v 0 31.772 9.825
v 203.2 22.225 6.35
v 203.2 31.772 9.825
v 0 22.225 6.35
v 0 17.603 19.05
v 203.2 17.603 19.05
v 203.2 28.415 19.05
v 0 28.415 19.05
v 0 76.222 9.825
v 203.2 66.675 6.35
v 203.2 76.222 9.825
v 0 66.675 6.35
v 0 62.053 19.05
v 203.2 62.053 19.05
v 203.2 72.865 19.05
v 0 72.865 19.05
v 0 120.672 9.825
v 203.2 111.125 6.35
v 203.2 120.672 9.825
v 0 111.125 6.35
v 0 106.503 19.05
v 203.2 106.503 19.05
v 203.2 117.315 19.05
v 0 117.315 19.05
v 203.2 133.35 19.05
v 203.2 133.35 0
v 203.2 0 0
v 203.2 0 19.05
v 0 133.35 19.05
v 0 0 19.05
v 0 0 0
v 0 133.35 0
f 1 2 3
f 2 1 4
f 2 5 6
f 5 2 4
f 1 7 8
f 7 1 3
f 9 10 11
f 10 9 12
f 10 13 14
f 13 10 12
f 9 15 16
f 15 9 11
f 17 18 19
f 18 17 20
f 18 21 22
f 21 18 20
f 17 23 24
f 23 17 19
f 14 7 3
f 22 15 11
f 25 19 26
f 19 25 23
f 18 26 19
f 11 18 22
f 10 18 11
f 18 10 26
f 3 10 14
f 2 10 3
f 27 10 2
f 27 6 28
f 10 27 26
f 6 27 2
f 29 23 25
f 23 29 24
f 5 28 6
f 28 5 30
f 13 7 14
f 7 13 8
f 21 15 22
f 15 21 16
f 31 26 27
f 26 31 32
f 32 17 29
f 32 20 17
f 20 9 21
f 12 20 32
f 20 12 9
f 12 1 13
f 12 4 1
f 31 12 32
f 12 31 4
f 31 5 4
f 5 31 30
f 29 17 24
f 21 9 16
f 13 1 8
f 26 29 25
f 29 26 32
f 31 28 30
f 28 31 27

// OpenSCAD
mm = 25.4;
$fn = 32;
e = 0.1;

slot_spc = 1.75*mm;
slot_wid = 0.4*mm;
slot_dep = 0.5*mm;

slot_ang = 20;

b_wid = 8*mm;
b_len = 3 * slot_spc;
b_hgt = slot_dep * 1.5;

difference() {
  cube( [b_wid, b_len, b_hgt]);
  for( i=[0:3]) {
    translate( [-e, slot_spc/2+i*slot_spc, slot_dep/2])
      rotate( [slot_ang, 0, 0])
      cube( [b_wid+2*e, slot_wid, slot_dep*2]);
  }
}
